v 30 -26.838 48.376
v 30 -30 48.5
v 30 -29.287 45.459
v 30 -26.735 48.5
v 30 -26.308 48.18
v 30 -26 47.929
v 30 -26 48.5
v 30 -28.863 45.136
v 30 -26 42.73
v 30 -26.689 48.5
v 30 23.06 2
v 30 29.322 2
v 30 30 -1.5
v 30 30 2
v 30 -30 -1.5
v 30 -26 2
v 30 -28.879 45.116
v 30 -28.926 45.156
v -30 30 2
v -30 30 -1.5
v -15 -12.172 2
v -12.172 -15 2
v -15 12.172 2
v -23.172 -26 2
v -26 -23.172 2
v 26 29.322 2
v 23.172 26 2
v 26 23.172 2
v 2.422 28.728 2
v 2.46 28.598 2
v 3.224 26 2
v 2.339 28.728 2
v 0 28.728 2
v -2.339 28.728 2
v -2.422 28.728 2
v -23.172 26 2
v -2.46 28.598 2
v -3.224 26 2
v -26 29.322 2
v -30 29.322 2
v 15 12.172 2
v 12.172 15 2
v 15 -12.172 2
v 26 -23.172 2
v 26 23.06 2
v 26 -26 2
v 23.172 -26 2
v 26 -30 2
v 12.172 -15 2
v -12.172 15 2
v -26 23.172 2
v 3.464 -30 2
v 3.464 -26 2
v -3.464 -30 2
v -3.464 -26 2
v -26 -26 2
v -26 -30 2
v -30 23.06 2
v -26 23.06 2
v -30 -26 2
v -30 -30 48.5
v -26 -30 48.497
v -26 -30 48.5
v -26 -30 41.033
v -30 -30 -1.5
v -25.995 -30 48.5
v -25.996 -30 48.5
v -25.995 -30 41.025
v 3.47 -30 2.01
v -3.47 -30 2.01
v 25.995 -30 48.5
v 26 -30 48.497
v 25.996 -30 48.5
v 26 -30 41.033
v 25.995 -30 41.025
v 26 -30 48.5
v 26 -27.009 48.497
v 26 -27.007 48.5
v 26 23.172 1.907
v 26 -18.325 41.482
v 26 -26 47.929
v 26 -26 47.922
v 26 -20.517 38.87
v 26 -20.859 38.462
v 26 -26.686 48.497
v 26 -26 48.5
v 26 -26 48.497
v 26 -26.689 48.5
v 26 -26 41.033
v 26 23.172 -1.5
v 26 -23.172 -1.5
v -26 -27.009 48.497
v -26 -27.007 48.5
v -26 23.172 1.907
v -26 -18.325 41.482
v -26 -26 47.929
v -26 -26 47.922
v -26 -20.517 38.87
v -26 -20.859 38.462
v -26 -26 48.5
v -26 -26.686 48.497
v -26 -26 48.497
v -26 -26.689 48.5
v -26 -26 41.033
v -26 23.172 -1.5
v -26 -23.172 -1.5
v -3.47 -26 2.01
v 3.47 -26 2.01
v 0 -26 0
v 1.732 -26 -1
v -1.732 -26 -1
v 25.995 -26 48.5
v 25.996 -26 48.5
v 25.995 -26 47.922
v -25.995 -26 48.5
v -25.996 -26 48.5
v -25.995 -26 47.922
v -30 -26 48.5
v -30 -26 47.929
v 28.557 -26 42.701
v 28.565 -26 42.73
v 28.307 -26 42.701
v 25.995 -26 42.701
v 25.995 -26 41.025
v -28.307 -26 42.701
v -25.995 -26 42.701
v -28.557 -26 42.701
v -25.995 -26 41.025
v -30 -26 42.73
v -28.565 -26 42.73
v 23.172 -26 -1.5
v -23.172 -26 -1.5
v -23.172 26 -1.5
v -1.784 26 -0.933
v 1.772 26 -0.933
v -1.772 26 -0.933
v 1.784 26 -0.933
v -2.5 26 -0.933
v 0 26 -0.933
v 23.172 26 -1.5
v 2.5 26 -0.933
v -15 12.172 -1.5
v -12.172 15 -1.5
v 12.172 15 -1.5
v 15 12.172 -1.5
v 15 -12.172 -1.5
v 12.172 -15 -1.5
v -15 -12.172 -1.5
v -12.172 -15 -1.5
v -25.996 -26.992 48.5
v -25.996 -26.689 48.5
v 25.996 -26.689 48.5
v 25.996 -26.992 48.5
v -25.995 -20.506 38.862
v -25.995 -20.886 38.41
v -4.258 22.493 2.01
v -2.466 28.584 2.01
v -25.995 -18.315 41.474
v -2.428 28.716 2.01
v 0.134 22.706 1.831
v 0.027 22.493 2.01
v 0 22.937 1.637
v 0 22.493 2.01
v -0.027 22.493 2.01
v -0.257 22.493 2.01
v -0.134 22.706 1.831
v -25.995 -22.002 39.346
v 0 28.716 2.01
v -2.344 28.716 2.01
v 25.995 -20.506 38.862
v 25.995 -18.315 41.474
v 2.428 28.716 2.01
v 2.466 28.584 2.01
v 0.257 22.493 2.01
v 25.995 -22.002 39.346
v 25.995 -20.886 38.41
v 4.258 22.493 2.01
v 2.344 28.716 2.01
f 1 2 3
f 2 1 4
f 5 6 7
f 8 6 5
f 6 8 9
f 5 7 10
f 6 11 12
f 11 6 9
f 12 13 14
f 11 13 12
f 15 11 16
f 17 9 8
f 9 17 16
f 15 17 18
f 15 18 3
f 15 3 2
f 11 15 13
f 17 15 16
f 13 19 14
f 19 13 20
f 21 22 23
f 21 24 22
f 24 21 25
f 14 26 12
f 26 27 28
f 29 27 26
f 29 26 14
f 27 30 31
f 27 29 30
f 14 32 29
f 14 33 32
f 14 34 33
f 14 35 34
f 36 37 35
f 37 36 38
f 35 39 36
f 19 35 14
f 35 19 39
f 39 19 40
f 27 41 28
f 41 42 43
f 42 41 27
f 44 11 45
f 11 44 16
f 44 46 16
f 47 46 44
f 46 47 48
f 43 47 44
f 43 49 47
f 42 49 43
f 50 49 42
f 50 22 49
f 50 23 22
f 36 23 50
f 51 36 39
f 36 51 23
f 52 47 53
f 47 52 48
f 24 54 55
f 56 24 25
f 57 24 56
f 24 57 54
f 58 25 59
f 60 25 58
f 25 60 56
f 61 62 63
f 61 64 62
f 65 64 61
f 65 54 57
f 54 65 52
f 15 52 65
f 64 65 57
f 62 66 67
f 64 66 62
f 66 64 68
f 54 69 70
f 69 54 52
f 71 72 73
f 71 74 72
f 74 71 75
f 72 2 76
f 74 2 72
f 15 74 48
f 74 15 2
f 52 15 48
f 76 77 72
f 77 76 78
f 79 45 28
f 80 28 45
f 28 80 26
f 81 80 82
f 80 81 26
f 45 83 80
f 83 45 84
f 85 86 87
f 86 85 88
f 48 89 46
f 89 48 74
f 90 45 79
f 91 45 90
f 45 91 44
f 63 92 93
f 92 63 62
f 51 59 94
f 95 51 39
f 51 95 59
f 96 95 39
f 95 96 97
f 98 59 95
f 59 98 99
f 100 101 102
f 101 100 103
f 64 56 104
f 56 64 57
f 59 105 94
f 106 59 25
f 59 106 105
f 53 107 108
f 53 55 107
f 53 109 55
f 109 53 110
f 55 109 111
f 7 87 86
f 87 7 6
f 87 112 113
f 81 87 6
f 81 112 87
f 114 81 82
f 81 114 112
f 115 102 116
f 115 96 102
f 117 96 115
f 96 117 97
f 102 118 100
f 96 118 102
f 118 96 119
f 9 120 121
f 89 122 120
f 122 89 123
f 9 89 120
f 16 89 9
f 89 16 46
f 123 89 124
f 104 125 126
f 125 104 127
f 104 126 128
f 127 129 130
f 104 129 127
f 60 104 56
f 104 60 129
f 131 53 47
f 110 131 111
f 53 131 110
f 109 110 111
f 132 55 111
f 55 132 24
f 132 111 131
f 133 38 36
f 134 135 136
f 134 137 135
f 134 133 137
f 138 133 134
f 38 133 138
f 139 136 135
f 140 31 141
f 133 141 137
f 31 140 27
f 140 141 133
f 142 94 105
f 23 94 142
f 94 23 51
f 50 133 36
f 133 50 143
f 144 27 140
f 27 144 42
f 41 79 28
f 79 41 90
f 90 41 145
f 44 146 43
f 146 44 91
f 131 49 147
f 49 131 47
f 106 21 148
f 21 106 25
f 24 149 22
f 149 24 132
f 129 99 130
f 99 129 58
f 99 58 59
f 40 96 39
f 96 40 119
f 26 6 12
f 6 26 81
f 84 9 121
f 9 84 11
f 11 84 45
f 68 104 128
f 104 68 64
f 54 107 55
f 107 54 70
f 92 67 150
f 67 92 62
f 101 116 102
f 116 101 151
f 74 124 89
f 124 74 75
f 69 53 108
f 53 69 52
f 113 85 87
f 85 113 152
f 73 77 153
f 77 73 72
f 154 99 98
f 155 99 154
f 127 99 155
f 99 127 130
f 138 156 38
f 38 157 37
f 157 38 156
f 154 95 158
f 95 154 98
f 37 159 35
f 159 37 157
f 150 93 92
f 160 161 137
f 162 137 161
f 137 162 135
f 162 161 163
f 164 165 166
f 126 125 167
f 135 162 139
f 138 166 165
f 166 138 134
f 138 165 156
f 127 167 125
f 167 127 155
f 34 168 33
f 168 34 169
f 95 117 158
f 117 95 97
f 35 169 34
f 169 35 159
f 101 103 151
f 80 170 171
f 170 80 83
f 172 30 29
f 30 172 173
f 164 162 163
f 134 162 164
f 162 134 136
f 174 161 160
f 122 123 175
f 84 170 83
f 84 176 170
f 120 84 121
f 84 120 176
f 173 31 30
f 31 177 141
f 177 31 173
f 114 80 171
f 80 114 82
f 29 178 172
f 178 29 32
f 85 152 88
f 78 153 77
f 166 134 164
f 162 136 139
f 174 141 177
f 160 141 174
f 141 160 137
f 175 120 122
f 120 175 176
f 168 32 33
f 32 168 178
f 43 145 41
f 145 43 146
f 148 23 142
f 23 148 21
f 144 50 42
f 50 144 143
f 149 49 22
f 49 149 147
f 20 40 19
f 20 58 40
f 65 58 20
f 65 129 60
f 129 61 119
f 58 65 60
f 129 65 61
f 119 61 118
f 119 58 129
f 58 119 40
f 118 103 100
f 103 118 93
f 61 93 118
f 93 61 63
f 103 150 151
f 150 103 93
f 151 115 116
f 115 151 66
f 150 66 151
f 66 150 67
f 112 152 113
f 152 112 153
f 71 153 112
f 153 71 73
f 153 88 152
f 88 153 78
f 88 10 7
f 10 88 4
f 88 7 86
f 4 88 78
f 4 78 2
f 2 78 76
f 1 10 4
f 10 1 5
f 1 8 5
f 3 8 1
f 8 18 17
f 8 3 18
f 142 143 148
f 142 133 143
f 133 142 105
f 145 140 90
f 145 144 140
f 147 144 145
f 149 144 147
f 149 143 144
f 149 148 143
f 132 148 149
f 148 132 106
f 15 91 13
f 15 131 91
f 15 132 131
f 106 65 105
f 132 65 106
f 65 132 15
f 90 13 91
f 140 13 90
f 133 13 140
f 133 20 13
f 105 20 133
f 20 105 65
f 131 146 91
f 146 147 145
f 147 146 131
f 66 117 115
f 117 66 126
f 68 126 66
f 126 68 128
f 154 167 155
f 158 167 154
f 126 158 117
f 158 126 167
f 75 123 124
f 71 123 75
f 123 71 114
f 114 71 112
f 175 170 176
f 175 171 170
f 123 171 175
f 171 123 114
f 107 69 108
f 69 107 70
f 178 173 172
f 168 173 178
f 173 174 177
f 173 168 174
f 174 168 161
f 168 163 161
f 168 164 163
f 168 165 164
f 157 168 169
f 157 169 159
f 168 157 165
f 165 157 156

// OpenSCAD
// file: ../lib/torus.scad
module torus(
outer_diameter,
circle_diameter
) {
    rotate_extrude(convexity = 4)
    translate([(outer_diameter-circle_diameter)/2, 0, 0])
    circle(d=circle_diameter, $fn=$fn/3);
}
// file: ../rocket-bottom.scad
use <lib/centered_cube.scad>
use <lib/torus.scad>

translate([0,0,-1.1])
ccube([93,93,1]);

module nozzle() {
    color([.2,.2,.2])
    cylinder(d1=40, d2=16+(40-16)*((40-16)/40), h=16);

    color([.35,.35,.35])
    translate([0,0,16])
    torus(34, 5);

    color([.5,.5,.5])
    translate([0,0,16])
    cylinder(d1=16+(40-16)*((40-16)/40), d2=16, h=40-16);
}


module nozzle_and_fin() {
    nozzle();

    color([.8, .8, .8])
    translate([0,0,41.6]) {
        intersection() {
            cylinder(d=38, h=16);
            translate([0,0,-1])
            ccube([50,50,20], centered=[0,1,0]);
        }
        rotate([0,0,180])
        ccube([4,38,16], centered=[0,1,0]);
    }
    
    color([0,0,0])
    translate([0,0,40])
    ccube([16, 16, 8], centered=[1,1,0]);


    // fin mount
    color([1,1,1])
    translate([0,0,57.6])
    resize([38,32,64])
    cylinder(d1=32, d2=16, h=64);

    // fin
    color([1,1,1])
    translate([18,0,65.6])
    rotate([90,0,0])
    translate([0,0,-0.8])
    linear_extrude(height=1.6) {
        polygon(points=[
            [0,0],
            [3,-8],
            [32, -22],
            [32, -6],
            [0, 24]
        ]);
    }
}

module rocket_bottom() {
    nozzle();
    color([.8, .8, .8])
    translate([0,0,40])
    cylinder(d=16, h=18);

    for (r = [0:1:3]) {
        rotate([0,0,r*90])
        translate([42.5,0,0])
        nozzle_and_fin();
    }
    
    // bottom of fuel tank
    color([1,1,1])
    translate([0,0,58])
    cylinder(d=80, h=32);
}

rocket_bottom();
// file: ../lib/lego_brick_builder.scad
/*

 Basic Lego brick builder module for OpenScad by Jorg Janssen 2013 (CC BY-NC 3.0) 
 To use this in your own projects add:

 use <path_to_this_file/lego_brick_builder.scad>
 brick (length, width, height [,smooth]);

 Length and width are in standard lego brick dimensions. 
 Height is in flat brick heights, so for a normal lego brick height = 3.
 Add optional smooth = true for a brick without studs. 
 Use height = 0 to just put studs/knobs on top of other things.

 */
$fn = 50;
 
 // this is it:
brick(5,3,3);


// and this is how it's done:

FLU = 1.6; // Fundamental Lego Unit = 1.6 mm

BRICK_WIDTH = 5*FLU; // basic brick width
BRICK_HEIGHT = 6*FLU; // basic brick height
PLATE_HEIGHT = 2*FLU; // basic plate height
WALL_THICKNESS = FLU; // outer wall of the brick
STUD_RADIUS = 1.5*FLU; // studs are the small cylinders on top of the brick with the lego logo ('nopje' in Dutch)
STUD_HEIGHT = FLU; 
ANTI_STUD_RADIUS = 0.5*4.07*FLU;  // an anti stud is the hollow cylinder inside bricks that have length > 1 and width > 1
PIN_RADIUS = FLU; // a pin is the small cylinder inside bricks that have length = 1 or width = 1
SUPPORT_THICKNESS = 0.254; // support is the thin surface between anti studs, pins and walls, your printer might not print this thin, try thicker!
EDGE = 0.254; // this is the width and height of the bottom line edge of smooth bricks
CORRECTION = 0.1; // addition to each size, to make sure all parts connect by moving them a little inside each other

module brick(length = 4, width = 2, height = 3, smooth = false){

	// brick shell
	difference(){
		cube(size = [length*BRICK_WIDTH,width*BRICK_WIDTH,height*PLATE_HEIGHT]);
		translate([WALL_THICKNESS,WALL_THICKNESS,-WALL_THICKNESS])
		union(){
			cube(size = [length*BRICK_WIDTH-2*WALL_THICKNESS,width*BRICK_WIDTH-2*WALL_THICKNESS,height*PLATE_HEIGHT]);
			// stud inner holes, radius = pin radius
			if (!smooth) {
				translate([STUD_RADIUS+WALL_THICKNESS,STUD_RADIUS+WALL_THICKNESS,height*PLATE_HEIGHT])
				for (y = [0:width-1]){
					for (x = [0:length-1]){
						translate ([x*BRICK_WIDTH-WALL_THICKNESS,y*BRICK_WIDTH-WALL_THICKNESS,-CORRECTION])
						cylinder(h=WALL_THICKNESS+2*CORRECTION,r=PIN_RADIUS);
					}
				}
			}
			// small bottom line edge for smooth bricks
			else {
				translate([-WALL_THICKNESS-CORRECTION,-WALL_THICKNESS-CORRECTION,FLU-CORRECTION]) 
				difference() {
					cube([length*BRICK_WIDTH+2*CORRECTION,width*BRICK_WIDTH+2*CORRECTION,EDGE+CORRECTION]);
					translate([EDGE+CORRECTION,EDGE+CORRECTION,-CORRECTION])
					cube([length*BRICK_WIDTH-2*EDGE,width*BRICK_WIDTH-2*EDGE,EDGE+3*CORRECTION]); 
				}
			}
		}
	}
	// Studs
	if(!smooth){
		translate([STUD_RADIUS+WALL_THICKNESS,STUD_RADIUS+WALL_THICKNESS,height*PLATE_HEIGHT])
		for (y = [0:width-1]){
			for (x = [0:length-1]){
				translate ([x*BRICK_WIDTH,y*BRICK_WIDTH,-CORRECTION])
				difference(){
					cylinder(h=STUD_HEIGHT+CORRECTION, r=STUD_RADIUS);
					// Stud inner holes
					translate([0,0,-CORRECTION])
					cylinder(h=0.5*STUD_HEIGHT+CORRECTION,r=PIN_RADIUS);
				}
				// tech logo - disable this if your printer isn't capable of printing this small
				if ( length > width){
					translate([x*BRICK_WIDTH+0.8,y*BRICK_WIDTH-1.9,STUD_HEIGHT-CORRECTION])
					resize([1.2*1.7,2.2*1.7,0.254+CORRECTION])
					rotate(a=[0,0,90])
					import("tech.stl");
				}
				else {
					translate([x*BRICK_WIDTH-1.9,y*BRICK_WIDTH-0.8,STUD_HEIGHT-CORRECTION])
					resize([2.2*1.7,1.2*1.7,0.254+CORRECTION])
					import("tech.stl");				
				}				
				/* 
				// Alternative 2-square logo
				translate ([x*BRICK_WIDTH+CORRECTION,y*BRICK_WIDTH-CORRECTION,STUD_HEIGHT-CORRECTION])		
				cube([1,1,2*CORRECTION]);
				translate ([x*BRICK_WIDTH-0.9,y*BRICK_WIDTH-0.9,STUD_HEIGHT-CORRECTION])		
				cube([1,1,0.3]);
				*/				
			}
		}
	}
	// Pins x
	if (width == 1 && length > 1) {	
			for (x = [1:length-1]){
				translate([x*BRICK_WIDTH,0.5*BRICK_WIDTH,0])
				cylinder(h=height*PLATE_HEIGHT-WALL_THICKNESS+CORRECTION,r=PIN_RADIUS);
				// Supports
				if (height > 1) {
				translate([x*BRICK_WIDTH-0.5*SUPPORT_THICKNESS,CORRECTION,STUD_HEIGHT])
				cube(size=[SUPPORT_THICKNESS,BRICK_WIDTH-2*CORRECTION,height*PLATE_HEIGHT-STUD_HEIGHT-WALL_THICKNESS+CORRECTION]);
			}
		}
	}
	// Pins y
	if (length == 1 && width > 1) {	
			for (y = [1:width-1]){
			translate([0.5*BRICK_WIDTH,y*BRICK_WIDTH,0])
			cylinder(h=height*PLATE_HEIGHT-WALL_THICKNESS+CORRECTION,r=PIN_RADIUS);
			// Supports
			if (height > 1) {
			translate([CORRECTION,y*BRICK_WIDTH-0.5*SUPPORT_THICKNESS,STUD_HEIGHT])
			cube(size=[BRICK_WIDTH-2*CORRECTION,SUPPORT_THICKNESS,height*PLATE_HEIGHT-STUD_HEIGHT-WALL_THICKNESS+CORRECTION]);}
			
		}
	}
	// Anti Studs
	if (width > 1 && length > 1){
		difference(){
			union(){
				for(y = [1:width-1]){
					for(x = [1:length-1]){
						// anti studs
						translate([x*BRICK_WIDTH,y*BRICK_WIDTH,0])
						cylinder (h=height*PLATE_HEIGHT-WALL_THICKNESS+CORRECTION, r = ANTI_STUD_RADIUS);
						// Supports
						if (height > 1){
							// Support x
							if (x%2 == 0 && (length%2 == 0 || length%4 == 1 && x<length/2 || length%4 == 3 && x>length/2) || x%2 == 1 && (length%4 == 3 && x<length/2 || length%4 == 1 && x>length/2)) {
								translate([BRICK_WIDTH*x-0.5*SUPPORT_THICKNESS,y*BRICK_WIDTH-BRICK_WIDTH+WALL_THICKNESS-CORRECTION,STUD_HEIGHT])
								cube(size=[SUPPORT_THICKNESS,2*BRICK_WIDTH-2*WALL_THICKNESS,height*PLATE_HEIGHT-STUD_HEIGHT-WALL_THICKNESS+CORRECTION]);
							}
							// Supports y							
							if (y%2 == 0 && (width%2 == 0 || width%4 == 1 && y<width/2 || width%4 == 3 && y>width/2) || y%2 == 1 && (width%4 == 3 && y<width/2 || width%4 == 1 && y>width/2)) {
								translate([x*BRICK_WIDTH-BRICK_WIDTH+WALL_THICKNESS-CORRECTION,BRICK_WIDTH*y-0.5*SUPPORT_THICKNESS,STUD_HEIGHT])
								cube(size=[2*BRICK_WIDTH-2*WALL_THICKNESS,SUPPORT_THICKNESS,height*PLATE_HEIGHT-STUD_HEIGHT-WALL_THICKNESS+CORRECTION]);
							}
						}
					}
				}
			}
			union(){
				for(y = [1:width-1]){
					for(x = [1:length-1]){
						// hollow anti studs
						translate([x*BRICK_WIDTH,y*BRICK_WIDTH,-WALL_THICKNESS])
						cylinder (h=height*PLATE_HEIGHT, r = STUD_RADIUS);				
					}
				}
			}
		}		
	}
}
	
// file: ../lib/centered_cube.scad
module ccube(size, centered=[1,1,1]) {
    centered_cube(size, centered);
}

module centered_cube(size, centered=[1,1,1]) {
    translate([(-size[0]/2)*centered[0], (-size[1]/2)*centered[1], (-size[2]/2)*centered[2]])
    cube(size);
}
// main file
use <../shelf.scad>
use <../lib/centered_cube.scad>

g_t=3;

difference() {
    intersection() {
        translate([0,0,-150])
        rotate([0,180,0])
        gantry_layer1();
        
        translate([0,0,-g_t/2])
        ccube([60,60,50], centered=[1,1,0]);
    }
    
    translate([0,-1+0.01,2.01])
    ccube([52-0.01,50,47.01], centered=[1,3,0]);

    translate([0,-1+0.0-25,2.01])
    ccube([52-0.01,55,46.01], centered=[1,0,0]);
}
